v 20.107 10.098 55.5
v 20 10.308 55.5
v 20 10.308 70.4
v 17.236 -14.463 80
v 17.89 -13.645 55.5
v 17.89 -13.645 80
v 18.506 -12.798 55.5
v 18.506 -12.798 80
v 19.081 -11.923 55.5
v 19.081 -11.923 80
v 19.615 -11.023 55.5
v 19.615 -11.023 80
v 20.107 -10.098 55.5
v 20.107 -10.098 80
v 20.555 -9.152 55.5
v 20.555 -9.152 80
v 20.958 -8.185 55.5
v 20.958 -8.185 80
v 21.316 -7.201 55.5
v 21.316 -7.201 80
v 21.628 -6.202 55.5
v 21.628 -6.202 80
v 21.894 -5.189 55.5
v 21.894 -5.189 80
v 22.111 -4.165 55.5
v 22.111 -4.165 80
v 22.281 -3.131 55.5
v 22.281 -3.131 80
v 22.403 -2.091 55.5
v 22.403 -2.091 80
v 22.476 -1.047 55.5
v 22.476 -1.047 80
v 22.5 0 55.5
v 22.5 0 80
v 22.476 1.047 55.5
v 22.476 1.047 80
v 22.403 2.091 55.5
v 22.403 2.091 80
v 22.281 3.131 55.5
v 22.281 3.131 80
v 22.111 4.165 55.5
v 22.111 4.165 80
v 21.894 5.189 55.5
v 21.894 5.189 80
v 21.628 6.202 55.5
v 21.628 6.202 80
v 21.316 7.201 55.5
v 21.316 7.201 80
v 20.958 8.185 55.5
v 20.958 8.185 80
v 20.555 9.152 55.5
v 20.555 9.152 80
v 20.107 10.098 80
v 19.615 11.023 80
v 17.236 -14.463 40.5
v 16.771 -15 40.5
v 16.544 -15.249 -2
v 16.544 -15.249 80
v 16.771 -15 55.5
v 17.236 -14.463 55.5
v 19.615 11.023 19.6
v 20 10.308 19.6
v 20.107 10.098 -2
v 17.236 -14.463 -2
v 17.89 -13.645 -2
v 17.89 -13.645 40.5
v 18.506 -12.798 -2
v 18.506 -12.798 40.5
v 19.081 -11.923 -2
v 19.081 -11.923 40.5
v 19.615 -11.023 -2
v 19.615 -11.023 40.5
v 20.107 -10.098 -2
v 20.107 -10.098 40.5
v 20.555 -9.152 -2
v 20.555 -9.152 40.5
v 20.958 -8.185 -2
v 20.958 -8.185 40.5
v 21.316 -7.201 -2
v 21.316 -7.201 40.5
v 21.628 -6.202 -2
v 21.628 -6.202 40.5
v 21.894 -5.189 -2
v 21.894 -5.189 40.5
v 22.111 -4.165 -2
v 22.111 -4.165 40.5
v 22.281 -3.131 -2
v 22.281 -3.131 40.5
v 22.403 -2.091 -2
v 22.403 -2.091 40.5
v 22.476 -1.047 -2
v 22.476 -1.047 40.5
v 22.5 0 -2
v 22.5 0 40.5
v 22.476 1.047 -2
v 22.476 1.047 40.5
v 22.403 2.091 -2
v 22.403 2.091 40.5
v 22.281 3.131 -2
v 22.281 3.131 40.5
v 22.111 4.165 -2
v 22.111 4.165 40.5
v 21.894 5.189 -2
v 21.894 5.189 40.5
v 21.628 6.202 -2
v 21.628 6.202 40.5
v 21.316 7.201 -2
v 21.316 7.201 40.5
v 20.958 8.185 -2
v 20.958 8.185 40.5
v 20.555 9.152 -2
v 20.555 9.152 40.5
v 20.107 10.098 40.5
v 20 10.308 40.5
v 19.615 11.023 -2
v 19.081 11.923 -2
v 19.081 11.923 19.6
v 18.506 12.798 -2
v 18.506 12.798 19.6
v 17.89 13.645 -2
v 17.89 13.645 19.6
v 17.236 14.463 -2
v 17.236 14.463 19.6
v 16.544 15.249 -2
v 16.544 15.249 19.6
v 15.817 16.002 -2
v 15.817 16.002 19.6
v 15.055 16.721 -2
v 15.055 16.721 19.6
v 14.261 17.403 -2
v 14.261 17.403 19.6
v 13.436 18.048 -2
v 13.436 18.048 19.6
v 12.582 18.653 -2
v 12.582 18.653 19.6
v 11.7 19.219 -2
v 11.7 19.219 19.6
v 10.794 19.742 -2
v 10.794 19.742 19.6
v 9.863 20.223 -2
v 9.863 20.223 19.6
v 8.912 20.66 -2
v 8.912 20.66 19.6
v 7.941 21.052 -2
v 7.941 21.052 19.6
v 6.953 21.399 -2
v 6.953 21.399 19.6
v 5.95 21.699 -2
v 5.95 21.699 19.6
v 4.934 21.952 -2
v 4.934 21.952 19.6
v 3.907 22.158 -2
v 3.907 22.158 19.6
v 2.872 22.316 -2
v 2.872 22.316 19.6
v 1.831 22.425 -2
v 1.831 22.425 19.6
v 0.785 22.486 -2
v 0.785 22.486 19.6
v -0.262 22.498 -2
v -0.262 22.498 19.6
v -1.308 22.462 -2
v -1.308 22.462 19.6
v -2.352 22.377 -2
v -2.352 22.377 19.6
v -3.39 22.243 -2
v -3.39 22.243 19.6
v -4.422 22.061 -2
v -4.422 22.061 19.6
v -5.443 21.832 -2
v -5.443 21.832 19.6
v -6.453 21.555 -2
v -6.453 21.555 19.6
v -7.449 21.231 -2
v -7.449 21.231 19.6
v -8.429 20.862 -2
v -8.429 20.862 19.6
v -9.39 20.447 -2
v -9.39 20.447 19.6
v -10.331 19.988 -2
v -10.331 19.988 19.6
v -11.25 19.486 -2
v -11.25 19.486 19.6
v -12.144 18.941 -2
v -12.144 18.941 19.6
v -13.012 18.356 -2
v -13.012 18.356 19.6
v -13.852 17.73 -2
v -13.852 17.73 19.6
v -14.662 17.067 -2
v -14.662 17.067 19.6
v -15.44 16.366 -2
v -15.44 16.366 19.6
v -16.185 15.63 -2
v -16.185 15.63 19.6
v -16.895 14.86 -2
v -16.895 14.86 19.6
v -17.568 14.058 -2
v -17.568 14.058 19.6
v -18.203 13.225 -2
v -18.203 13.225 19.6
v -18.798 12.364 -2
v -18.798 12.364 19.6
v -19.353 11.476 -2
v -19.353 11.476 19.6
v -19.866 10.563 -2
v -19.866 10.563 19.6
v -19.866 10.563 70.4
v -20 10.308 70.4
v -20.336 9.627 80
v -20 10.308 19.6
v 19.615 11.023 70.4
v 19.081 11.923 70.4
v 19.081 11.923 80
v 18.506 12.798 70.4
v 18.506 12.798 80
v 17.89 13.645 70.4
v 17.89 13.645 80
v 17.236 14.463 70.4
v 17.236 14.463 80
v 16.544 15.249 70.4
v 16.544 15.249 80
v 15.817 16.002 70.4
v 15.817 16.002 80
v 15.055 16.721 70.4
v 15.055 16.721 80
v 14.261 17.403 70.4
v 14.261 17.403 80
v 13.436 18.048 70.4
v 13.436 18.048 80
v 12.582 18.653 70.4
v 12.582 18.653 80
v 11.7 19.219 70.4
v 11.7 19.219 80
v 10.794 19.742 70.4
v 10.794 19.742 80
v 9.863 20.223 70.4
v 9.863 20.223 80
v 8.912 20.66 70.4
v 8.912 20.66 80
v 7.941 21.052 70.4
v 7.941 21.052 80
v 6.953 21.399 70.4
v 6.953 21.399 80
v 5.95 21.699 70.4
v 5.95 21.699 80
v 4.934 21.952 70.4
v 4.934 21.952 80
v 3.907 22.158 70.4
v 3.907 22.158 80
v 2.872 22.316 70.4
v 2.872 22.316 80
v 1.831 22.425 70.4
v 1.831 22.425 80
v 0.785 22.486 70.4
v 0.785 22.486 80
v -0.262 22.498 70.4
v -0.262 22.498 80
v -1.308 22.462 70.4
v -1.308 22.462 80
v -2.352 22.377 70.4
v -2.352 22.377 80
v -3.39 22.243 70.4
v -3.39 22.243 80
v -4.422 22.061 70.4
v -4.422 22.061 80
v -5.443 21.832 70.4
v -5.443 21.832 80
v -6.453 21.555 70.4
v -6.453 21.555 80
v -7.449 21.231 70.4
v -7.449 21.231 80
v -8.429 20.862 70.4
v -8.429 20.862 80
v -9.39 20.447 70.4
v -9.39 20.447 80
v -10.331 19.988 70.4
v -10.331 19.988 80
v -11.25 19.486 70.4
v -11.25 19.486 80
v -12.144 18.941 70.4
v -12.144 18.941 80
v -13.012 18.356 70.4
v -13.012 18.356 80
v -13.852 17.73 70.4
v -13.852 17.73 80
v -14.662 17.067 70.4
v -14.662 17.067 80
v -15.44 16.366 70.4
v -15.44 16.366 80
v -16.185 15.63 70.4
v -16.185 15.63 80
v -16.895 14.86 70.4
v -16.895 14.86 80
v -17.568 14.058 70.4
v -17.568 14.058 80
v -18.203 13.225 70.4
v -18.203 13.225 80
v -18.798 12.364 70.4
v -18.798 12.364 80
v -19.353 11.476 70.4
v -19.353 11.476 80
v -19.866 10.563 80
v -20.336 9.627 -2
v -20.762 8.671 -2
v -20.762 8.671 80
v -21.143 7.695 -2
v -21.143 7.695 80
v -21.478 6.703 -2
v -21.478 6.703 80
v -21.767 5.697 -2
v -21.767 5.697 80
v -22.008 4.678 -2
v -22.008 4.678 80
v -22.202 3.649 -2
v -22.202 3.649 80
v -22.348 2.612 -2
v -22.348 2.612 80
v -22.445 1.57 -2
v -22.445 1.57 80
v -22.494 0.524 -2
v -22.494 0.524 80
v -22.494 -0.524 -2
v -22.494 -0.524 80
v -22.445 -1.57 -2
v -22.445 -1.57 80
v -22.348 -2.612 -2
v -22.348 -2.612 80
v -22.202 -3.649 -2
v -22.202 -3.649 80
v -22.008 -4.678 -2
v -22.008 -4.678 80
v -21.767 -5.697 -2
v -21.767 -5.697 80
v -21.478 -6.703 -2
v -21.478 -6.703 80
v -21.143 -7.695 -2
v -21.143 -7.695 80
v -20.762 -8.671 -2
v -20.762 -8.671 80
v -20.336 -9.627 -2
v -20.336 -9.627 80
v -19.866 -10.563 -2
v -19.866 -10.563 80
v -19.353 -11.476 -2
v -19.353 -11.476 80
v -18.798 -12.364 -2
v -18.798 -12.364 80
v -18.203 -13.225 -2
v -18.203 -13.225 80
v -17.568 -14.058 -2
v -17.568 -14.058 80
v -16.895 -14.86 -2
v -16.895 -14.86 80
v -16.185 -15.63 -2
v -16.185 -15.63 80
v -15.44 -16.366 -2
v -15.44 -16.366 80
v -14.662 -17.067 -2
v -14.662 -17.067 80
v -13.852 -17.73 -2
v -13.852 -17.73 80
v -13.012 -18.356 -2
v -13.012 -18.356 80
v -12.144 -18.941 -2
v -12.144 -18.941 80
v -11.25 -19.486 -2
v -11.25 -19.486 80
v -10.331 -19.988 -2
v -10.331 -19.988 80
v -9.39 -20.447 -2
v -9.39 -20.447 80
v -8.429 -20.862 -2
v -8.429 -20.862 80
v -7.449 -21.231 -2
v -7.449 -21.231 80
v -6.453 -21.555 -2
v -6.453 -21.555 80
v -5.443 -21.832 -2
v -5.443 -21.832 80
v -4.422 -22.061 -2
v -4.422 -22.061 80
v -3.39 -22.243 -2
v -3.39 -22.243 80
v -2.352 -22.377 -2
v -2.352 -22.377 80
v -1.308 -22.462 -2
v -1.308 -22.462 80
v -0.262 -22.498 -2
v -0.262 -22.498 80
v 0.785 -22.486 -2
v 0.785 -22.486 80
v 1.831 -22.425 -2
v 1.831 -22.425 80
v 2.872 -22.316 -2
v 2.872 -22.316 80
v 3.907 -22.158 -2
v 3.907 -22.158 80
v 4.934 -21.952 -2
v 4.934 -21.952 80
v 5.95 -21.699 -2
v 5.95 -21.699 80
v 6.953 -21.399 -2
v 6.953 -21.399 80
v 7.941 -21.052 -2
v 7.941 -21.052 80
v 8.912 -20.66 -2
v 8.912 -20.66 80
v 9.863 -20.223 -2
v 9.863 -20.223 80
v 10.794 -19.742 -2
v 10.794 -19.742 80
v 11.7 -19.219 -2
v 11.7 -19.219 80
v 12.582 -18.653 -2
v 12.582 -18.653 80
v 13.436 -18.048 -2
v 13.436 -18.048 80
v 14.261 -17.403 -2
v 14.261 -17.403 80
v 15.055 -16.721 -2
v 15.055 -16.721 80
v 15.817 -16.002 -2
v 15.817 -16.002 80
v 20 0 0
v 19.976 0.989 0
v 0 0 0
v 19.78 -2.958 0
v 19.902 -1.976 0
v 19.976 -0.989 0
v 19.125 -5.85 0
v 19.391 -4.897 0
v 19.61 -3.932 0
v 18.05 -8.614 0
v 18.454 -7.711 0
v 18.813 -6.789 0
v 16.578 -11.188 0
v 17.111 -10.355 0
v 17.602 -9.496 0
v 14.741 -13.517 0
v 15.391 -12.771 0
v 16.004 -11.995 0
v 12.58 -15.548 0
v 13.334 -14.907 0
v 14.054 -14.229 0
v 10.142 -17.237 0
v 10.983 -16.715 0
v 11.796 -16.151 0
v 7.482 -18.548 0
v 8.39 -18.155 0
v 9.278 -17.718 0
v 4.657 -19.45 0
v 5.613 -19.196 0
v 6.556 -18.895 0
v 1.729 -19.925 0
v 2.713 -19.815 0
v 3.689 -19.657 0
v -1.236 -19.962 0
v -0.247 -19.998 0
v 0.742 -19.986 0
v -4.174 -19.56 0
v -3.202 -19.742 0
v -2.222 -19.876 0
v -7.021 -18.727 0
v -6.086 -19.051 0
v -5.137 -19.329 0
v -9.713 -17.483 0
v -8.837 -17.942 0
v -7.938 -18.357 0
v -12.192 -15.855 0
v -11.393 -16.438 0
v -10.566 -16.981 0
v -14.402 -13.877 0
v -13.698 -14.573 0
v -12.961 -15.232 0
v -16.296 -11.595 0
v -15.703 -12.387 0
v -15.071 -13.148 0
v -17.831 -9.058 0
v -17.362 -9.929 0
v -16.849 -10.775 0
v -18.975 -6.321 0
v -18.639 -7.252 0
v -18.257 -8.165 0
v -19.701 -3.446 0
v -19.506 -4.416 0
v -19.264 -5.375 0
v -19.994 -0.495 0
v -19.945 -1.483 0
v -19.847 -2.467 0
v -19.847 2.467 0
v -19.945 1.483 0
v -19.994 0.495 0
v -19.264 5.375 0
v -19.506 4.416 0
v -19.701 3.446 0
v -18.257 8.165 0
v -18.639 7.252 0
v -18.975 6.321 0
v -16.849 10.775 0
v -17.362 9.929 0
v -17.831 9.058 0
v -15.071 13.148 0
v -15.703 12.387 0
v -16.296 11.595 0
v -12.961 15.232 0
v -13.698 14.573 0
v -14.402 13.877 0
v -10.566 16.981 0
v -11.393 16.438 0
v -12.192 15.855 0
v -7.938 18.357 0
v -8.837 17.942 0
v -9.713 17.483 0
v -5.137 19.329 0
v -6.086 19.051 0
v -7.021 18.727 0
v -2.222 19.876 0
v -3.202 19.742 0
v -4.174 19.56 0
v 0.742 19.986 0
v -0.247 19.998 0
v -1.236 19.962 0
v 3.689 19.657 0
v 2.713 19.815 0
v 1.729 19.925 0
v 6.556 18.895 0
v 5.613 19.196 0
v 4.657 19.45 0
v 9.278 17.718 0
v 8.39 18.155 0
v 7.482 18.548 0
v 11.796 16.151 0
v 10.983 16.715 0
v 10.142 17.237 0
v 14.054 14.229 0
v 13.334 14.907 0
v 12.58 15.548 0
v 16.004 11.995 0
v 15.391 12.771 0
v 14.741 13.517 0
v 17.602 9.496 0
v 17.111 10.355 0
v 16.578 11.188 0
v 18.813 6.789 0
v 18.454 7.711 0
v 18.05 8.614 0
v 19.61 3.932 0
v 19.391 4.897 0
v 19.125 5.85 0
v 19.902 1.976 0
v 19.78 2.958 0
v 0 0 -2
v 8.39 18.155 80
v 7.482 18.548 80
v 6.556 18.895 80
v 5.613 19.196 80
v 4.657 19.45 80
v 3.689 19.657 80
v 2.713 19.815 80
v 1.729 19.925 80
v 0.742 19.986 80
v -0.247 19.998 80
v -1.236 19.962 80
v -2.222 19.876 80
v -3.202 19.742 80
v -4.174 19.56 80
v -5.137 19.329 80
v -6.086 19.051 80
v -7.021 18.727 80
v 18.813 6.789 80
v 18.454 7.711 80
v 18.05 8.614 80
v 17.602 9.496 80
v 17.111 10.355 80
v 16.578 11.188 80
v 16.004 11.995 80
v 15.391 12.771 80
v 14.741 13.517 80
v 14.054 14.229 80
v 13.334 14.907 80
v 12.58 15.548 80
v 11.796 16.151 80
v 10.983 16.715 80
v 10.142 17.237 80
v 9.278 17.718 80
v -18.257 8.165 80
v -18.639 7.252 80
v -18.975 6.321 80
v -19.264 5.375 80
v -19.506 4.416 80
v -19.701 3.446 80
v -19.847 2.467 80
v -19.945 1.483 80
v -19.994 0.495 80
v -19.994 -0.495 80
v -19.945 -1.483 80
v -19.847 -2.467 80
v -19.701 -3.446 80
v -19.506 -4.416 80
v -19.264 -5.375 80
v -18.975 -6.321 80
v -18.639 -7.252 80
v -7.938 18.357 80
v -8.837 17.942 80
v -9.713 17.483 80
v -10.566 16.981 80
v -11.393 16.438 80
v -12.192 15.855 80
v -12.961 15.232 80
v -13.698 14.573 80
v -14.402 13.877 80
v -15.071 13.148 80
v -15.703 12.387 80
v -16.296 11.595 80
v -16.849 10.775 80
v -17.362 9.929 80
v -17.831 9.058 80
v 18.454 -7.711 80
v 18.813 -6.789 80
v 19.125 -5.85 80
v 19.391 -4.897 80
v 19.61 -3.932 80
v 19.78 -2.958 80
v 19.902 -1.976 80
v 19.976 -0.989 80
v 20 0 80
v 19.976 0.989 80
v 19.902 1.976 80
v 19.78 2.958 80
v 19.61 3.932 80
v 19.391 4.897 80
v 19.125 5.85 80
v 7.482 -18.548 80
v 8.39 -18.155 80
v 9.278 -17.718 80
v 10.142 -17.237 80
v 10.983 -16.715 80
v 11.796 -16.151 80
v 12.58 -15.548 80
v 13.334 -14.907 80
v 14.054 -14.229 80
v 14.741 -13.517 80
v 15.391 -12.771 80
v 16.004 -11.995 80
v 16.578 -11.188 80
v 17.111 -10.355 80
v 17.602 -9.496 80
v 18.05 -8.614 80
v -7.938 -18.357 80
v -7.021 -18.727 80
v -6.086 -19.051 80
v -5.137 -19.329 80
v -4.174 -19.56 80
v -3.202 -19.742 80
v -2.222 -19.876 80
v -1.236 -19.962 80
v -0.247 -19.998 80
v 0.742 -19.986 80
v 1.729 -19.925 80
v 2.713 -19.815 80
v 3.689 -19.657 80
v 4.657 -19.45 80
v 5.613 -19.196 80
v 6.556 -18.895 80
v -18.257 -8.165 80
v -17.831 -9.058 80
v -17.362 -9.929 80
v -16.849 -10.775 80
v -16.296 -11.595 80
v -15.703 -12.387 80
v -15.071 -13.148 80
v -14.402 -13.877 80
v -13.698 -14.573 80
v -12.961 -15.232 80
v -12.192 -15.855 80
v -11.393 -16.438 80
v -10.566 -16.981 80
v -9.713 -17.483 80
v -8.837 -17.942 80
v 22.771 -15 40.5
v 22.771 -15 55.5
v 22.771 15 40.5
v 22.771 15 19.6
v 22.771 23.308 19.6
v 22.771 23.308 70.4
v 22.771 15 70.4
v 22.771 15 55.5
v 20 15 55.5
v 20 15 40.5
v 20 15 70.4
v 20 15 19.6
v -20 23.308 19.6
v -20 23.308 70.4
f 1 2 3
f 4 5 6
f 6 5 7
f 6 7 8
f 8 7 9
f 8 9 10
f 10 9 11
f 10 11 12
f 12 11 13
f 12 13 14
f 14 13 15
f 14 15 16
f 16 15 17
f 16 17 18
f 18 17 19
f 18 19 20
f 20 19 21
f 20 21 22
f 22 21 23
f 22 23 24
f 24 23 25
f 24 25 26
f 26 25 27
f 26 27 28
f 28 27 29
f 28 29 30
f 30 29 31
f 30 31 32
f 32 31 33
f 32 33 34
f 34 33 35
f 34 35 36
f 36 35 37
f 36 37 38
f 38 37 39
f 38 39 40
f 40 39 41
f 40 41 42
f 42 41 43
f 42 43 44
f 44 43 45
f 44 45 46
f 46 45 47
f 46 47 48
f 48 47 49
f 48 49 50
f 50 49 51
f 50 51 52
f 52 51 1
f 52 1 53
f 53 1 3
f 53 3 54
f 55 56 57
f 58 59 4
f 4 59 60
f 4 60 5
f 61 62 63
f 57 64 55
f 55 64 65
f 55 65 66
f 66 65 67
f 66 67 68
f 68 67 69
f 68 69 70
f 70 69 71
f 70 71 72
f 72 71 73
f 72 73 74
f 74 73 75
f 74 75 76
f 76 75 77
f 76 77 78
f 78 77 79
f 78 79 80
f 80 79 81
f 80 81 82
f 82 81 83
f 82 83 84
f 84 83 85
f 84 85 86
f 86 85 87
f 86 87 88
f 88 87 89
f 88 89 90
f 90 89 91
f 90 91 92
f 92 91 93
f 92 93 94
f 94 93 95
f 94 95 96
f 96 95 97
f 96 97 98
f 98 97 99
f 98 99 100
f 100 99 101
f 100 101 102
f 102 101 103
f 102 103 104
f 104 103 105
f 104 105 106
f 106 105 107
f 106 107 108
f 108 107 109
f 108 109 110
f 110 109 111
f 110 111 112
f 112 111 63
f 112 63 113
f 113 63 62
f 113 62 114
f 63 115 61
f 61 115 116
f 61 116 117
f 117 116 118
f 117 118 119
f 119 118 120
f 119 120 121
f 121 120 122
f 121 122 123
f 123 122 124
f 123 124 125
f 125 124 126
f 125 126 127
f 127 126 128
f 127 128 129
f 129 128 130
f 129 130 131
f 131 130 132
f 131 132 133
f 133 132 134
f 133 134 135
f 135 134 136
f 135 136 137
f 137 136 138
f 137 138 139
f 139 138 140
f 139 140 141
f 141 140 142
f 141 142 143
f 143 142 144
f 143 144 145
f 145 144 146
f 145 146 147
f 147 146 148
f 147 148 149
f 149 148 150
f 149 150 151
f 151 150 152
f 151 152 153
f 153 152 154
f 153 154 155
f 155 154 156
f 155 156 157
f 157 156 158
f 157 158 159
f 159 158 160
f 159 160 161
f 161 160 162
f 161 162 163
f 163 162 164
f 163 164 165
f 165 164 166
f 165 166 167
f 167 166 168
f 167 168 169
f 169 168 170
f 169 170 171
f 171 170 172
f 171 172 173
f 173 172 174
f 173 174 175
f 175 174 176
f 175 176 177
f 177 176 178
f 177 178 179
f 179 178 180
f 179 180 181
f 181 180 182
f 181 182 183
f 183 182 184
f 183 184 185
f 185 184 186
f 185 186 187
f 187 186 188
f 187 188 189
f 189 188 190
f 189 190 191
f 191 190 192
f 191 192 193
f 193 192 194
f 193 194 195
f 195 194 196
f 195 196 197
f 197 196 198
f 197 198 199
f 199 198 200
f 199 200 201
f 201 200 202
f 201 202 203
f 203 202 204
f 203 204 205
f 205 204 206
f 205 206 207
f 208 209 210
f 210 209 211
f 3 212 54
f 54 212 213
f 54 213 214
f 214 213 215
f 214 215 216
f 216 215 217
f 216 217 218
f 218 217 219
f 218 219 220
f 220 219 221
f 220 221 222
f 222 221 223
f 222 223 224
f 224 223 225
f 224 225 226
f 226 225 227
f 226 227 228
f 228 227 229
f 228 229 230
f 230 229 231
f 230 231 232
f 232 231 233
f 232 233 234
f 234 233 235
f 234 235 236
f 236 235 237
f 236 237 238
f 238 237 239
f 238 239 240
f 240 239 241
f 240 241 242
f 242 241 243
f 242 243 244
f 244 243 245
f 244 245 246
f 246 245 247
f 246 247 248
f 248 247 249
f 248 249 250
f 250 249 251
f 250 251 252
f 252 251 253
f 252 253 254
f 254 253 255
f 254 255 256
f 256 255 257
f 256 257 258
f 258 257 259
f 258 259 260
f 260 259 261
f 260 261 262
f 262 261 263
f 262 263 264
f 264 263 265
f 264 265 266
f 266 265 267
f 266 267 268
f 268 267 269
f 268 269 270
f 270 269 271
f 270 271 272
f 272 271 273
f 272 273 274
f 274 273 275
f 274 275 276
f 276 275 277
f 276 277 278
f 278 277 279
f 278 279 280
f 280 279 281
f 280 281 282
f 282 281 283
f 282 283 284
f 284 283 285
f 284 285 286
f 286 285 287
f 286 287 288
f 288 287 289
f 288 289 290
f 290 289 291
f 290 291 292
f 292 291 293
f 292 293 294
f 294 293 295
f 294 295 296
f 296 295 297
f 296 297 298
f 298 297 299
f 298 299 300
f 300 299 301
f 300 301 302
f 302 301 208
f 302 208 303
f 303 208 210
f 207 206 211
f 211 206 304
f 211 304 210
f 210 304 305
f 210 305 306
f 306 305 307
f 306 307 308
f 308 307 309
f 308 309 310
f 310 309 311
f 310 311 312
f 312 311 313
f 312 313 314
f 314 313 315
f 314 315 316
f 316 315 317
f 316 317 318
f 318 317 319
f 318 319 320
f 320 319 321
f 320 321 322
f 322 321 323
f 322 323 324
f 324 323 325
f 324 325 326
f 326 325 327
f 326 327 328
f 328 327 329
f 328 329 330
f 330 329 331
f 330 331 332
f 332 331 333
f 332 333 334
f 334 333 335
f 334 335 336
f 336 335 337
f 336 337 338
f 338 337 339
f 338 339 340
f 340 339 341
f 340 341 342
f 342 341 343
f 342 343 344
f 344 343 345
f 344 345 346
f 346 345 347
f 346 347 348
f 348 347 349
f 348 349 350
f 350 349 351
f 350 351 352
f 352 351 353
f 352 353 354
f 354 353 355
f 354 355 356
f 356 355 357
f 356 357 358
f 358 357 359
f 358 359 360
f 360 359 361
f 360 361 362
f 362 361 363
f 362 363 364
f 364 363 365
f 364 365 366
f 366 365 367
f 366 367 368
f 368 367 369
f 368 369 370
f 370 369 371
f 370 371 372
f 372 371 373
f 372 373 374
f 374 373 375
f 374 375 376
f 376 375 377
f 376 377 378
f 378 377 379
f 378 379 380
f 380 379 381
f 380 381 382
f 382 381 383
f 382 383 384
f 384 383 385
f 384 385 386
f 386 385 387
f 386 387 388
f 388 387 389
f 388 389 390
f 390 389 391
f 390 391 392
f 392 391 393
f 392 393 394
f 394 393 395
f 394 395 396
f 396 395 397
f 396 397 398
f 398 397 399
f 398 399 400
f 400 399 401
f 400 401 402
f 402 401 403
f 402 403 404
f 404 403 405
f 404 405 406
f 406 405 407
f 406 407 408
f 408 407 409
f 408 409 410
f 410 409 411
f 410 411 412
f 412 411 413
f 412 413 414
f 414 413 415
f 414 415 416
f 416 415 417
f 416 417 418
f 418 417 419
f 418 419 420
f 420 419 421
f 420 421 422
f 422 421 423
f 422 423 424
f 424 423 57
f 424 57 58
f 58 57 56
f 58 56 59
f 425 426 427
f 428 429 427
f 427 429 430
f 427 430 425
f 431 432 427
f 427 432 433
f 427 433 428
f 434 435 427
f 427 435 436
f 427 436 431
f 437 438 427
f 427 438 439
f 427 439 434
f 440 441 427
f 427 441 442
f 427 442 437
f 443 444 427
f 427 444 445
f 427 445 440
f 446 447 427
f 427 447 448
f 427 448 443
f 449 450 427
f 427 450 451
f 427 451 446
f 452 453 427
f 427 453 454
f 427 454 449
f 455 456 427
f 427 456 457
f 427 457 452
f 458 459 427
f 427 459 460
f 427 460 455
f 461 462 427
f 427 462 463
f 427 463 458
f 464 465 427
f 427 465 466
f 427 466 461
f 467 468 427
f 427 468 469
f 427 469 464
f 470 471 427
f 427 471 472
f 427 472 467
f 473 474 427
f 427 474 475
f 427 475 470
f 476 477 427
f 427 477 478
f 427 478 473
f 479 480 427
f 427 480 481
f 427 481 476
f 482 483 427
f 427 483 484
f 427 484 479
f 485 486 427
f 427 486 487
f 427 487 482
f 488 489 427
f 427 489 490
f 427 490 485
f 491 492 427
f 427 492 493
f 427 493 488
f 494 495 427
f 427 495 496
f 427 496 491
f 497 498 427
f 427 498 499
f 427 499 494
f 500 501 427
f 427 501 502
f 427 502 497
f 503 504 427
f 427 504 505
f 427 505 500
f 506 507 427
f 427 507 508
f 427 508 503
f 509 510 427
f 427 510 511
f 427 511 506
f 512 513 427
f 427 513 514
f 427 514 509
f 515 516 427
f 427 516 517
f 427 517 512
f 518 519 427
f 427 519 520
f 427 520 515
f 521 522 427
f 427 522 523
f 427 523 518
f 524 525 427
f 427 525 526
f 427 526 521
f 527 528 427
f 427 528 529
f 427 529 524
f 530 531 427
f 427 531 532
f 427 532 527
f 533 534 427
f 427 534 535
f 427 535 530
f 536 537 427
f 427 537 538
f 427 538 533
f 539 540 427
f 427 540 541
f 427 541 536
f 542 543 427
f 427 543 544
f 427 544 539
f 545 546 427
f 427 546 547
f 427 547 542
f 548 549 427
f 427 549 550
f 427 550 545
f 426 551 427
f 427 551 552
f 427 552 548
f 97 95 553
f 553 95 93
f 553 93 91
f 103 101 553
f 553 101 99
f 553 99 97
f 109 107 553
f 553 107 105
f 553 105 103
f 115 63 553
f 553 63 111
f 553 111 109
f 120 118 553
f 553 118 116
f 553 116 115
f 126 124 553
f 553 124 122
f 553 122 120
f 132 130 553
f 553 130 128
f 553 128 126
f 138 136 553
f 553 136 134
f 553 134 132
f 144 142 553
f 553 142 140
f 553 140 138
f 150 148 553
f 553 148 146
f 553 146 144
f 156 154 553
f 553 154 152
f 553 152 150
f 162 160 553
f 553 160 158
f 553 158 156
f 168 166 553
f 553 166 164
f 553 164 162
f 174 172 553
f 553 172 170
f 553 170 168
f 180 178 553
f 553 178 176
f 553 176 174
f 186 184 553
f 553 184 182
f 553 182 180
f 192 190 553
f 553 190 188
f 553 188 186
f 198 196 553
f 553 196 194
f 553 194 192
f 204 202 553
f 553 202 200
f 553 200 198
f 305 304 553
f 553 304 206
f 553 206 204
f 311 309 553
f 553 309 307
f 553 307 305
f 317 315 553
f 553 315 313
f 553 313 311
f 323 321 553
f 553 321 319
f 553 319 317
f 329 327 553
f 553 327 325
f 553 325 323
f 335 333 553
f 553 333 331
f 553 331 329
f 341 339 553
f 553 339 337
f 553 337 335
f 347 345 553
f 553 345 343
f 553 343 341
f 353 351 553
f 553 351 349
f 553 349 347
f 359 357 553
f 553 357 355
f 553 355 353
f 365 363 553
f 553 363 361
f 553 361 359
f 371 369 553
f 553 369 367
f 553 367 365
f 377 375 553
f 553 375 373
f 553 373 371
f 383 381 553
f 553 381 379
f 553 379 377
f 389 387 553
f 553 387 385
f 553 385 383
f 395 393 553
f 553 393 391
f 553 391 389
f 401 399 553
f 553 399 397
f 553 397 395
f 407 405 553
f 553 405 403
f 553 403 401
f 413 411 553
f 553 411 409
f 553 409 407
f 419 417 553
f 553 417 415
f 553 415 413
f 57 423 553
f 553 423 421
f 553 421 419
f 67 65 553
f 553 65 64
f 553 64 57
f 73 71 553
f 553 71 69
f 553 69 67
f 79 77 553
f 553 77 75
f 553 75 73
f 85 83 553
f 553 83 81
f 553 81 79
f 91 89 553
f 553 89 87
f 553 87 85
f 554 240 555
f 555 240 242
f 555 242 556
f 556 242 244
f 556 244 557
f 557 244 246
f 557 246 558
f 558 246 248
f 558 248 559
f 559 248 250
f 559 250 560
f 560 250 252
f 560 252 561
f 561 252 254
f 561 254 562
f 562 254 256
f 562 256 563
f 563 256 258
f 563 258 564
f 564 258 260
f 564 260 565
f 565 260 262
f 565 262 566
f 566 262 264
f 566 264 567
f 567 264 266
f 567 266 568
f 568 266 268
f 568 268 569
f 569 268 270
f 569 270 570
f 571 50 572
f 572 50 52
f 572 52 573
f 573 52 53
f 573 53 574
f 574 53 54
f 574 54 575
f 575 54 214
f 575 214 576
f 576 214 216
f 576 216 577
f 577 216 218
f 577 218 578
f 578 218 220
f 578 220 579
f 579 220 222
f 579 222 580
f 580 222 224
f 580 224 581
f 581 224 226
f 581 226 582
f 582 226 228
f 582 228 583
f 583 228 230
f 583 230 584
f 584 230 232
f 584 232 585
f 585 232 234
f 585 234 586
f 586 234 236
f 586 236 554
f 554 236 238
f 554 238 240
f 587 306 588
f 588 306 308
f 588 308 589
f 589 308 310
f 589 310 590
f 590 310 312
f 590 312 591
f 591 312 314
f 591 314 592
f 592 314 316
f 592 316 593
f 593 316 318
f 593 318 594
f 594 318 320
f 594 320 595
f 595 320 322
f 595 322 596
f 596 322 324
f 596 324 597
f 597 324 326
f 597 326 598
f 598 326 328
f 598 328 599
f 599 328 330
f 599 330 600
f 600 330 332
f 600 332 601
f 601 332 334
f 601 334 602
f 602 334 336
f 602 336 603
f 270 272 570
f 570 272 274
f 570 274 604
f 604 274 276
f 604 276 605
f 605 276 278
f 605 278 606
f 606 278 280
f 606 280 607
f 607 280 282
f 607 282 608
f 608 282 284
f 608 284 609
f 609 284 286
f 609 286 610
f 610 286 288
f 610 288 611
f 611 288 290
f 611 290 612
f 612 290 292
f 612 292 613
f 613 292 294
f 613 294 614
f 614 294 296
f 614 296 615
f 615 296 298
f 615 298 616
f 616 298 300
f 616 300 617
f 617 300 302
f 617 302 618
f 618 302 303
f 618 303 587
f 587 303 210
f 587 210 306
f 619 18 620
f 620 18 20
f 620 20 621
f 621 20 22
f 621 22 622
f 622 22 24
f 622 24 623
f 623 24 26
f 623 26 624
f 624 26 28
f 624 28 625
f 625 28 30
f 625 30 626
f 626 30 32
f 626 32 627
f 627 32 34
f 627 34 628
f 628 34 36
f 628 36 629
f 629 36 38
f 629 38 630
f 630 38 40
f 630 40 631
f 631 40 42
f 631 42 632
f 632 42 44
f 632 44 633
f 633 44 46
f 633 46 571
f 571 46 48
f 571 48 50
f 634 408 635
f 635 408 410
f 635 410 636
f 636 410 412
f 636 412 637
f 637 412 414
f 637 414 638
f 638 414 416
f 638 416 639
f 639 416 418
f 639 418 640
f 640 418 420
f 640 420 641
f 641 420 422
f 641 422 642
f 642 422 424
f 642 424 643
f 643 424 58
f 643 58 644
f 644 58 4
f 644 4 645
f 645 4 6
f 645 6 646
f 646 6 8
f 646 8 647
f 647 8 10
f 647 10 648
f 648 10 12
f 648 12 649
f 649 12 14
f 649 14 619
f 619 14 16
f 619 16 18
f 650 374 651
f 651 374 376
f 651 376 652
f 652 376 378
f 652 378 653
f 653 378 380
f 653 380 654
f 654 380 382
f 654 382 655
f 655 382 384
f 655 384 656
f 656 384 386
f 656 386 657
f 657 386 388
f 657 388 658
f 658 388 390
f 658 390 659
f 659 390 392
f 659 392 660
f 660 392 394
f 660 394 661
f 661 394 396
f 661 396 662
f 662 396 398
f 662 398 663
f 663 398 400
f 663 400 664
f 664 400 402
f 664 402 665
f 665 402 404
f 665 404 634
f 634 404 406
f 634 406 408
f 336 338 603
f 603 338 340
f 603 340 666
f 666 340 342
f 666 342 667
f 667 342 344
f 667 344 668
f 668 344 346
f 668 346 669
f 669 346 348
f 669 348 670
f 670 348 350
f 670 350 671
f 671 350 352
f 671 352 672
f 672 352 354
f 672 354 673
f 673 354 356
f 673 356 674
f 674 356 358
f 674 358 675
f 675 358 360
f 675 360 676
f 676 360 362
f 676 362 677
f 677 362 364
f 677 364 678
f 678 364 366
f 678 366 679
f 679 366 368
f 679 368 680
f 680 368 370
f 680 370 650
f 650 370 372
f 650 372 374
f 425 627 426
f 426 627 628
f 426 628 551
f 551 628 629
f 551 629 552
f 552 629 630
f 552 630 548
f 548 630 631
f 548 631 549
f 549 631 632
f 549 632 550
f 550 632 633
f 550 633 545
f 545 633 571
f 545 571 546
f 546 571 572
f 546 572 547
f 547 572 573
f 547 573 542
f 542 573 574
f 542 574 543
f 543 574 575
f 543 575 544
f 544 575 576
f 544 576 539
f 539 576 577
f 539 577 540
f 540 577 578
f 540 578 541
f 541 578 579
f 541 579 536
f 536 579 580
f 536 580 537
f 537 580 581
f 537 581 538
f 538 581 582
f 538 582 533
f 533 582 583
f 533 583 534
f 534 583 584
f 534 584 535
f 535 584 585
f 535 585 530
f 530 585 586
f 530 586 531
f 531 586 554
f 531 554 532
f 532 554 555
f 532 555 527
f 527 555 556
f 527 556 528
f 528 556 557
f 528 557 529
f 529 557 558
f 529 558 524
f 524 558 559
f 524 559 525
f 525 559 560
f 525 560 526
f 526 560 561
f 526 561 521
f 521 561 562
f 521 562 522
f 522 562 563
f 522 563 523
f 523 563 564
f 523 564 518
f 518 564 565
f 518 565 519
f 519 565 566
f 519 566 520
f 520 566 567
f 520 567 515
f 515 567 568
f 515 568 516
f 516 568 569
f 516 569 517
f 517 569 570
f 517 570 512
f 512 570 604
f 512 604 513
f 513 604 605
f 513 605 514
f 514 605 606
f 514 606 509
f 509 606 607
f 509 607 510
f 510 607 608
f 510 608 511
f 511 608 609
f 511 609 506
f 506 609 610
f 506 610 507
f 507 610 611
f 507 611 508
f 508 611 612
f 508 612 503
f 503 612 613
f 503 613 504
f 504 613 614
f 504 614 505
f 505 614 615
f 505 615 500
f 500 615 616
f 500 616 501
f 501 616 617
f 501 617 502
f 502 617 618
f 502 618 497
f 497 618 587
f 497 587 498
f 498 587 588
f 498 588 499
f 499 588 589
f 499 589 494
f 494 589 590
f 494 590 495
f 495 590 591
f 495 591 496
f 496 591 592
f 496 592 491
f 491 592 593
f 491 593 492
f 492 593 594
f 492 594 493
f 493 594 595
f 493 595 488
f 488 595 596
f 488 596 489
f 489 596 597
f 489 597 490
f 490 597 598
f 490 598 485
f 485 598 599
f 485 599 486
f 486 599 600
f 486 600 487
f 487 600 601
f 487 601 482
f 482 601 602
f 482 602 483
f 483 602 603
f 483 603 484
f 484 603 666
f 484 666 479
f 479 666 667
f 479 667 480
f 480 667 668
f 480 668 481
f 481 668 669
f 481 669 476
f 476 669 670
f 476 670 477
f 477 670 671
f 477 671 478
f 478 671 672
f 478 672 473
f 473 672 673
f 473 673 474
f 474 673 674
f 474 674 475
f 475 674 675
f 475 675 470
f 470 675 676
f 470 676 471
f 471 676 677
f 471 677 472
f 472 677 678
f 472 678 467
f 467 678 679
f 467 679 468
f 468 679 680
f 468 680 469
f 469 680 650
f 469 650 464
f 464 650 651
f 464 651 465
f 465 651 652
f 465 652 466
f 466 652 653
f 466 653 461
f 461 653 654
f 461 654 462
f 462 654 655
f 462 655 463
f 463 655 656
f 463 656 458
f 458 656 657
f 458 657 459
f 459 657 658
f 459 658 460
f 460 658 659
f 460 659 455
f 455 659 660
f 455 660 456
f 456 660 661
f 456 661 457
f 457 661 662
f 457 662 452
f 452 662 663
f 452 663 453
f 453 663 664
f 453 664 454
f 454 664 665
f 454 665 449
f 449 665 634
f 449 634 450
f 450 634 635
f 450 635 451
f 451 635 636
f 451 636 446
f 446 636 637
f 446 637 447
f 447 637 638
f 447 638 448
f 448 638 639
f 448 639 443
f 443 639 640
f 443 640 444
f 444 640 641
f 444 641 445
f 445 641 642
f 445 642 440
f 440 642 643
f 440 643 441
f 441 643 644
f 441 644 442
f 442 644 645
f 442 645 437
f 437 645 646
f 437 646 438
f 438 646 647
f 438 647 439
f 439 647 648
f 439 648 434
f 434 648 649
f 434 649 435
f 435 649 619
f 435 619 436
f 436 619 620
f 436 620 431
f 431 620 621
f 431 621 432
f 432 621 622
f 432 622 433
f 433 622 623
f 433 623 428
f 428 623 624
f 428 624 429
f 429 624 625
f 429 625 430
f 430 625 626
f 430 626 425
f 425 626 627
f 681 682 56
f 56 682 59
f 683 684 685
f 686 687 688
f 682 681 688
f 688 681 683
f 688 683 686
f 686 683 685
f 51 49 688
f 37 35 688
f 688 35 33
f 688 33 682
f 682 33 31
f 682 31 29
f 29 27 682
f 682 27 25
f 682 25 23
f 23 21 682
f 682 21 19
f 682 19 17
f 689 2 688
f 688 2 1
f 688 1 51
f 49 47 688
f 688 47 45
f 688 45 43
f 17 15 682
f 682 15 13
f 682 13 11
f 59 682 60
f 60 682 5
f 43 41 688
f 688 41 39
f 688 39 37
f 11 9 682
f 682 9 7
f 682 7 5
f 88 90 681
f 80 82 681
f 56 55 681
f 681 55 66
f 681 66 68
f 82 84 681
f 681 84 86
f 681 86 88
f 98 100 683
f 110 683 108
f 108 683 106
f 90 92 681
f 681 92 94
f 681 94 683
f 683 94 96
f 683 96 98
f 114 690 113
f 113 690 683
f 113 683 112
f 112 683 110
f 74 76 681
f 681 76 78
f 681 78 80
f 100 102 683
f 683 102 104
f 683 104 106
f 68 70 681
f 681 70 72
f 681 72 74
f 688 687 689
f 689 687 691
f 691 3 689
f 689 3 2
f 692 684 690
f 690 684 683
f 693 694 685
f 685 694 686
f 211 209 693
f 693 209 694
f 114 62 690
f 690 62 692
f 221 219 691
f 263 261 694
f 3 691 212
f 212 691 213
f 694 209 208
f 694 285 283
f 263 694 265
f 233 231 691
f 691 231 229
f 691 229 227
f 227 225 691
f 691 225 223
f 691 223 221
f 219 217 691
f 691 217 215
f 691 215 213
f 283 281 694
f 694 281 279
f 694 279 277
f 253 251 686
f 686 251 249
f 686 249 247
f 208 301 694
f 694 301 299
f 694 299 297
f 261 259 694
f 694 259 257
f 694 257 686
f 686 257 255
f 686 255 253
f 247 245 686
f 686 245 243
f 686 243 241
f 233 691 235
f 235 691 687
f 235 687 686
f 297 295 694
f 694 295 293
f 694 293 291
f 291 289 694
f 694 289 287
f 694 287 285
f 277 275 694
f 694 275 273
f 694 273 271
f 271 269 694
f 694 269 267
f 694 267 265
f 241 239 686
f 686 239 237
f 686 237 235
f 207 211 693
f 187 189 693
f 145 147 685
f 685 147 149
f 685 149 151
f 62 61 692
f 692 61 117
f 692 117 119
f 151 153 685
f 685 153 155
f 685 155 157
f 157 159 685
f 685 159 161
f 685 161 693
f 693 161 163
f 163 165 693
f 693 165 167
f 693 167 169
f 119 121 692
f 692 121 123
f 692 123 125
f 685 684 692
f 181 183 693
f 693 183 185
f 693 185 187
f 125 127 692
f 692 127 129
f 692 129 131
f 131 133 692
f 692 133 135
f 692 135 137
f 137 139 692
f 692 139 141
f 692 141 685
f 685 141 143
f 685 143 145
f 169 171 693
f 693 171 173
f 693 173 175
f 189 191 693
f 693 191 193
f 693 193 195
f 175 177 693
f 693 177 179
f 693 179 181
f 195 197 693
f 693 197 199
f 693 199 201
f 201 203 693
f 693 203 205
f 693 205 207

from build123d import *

# Parameters (mm, degrees)
BOSS_EXTRUDE1_DEPTH      = 7.5
BOSS_EXTRUDE1_DEPTH_BACK = 7.5
BOSS_EXTRUDE2_DEPTH      = 28.4
BOSS_EXTRUDE2_DEPTH_BACK = 22.4


with BuildPart() as part:
    # Sketch1 → Revolve1 (revolve)
    with BuildSketch(Plane(origin=(0, 0, 0), x_dir=(0, 0, -1), z_dir=(1, 0, 0))):
        Polygon((0, 0), (2, 0), (2, -22.5), (-80, -22.5), (-80, -20), (0, -20), align=None)
    revolve(axis=Axis((0, 0, 0), (0, 0, -1)))

    # Sketch3 → Boss-Extrude1 (add, two sides)
    with BuildSketch(Plane(origin=(0, 0, 48), x_dir=(-1, 0, 0), z_dir=(0, 0, -1))) as boss_extrude1_sk:
        with BuildLine():
            Line((-16.770509831, 15), (-22.770509831, 15))
            Line((-22.770509831, 15), (-22.770509831, -15))
            Line((-22.770509831, -15), (-16.770509831, -15))
            ThreePointArc((-16.770509831, -15), (-22.5, 0), (-16.770509831, 15))
        make_face()
    extrude(amount=BOSS_EXTRUDE1_DEPTH)
    extrude(boss_extrude1_sk.sketch, amount=-BOSS_EXTRUDE1_DEPTH_BACK)

    # Sketch4 → Boss-Extrude2 (add, two sides)
    with BuildSketch(Plane(origin=(0, 0, 48), x_dir=(-1, 0, 0), z_dir=(0, 0, -1))) as boss_extrude2_sk:
        with BuildLine():
            ThreePointArc((-20, 10.307764064), (0, 22.5), (20, 10.307764064))
            Line((20, 10.307764064), (20, 23.307764064))
            Line((20, 23.307764064), (-22.770509831, 23.307764064))
            Line((-22.770509831, 23.307764064), (-22.770509831, 15))
            Line((-22.770509831, 15), (-20, 15))
            Line((-20, 15), (-20, 10.307764064))
        make_face()
    extrude(amount=BOSS_EXTRUDE2_DEPTH)
    extrude(boss_extrude2_sk.sketch, amount=-BOSS_EXTRUDE2_DEPTH_BACK)


solid = part.part
